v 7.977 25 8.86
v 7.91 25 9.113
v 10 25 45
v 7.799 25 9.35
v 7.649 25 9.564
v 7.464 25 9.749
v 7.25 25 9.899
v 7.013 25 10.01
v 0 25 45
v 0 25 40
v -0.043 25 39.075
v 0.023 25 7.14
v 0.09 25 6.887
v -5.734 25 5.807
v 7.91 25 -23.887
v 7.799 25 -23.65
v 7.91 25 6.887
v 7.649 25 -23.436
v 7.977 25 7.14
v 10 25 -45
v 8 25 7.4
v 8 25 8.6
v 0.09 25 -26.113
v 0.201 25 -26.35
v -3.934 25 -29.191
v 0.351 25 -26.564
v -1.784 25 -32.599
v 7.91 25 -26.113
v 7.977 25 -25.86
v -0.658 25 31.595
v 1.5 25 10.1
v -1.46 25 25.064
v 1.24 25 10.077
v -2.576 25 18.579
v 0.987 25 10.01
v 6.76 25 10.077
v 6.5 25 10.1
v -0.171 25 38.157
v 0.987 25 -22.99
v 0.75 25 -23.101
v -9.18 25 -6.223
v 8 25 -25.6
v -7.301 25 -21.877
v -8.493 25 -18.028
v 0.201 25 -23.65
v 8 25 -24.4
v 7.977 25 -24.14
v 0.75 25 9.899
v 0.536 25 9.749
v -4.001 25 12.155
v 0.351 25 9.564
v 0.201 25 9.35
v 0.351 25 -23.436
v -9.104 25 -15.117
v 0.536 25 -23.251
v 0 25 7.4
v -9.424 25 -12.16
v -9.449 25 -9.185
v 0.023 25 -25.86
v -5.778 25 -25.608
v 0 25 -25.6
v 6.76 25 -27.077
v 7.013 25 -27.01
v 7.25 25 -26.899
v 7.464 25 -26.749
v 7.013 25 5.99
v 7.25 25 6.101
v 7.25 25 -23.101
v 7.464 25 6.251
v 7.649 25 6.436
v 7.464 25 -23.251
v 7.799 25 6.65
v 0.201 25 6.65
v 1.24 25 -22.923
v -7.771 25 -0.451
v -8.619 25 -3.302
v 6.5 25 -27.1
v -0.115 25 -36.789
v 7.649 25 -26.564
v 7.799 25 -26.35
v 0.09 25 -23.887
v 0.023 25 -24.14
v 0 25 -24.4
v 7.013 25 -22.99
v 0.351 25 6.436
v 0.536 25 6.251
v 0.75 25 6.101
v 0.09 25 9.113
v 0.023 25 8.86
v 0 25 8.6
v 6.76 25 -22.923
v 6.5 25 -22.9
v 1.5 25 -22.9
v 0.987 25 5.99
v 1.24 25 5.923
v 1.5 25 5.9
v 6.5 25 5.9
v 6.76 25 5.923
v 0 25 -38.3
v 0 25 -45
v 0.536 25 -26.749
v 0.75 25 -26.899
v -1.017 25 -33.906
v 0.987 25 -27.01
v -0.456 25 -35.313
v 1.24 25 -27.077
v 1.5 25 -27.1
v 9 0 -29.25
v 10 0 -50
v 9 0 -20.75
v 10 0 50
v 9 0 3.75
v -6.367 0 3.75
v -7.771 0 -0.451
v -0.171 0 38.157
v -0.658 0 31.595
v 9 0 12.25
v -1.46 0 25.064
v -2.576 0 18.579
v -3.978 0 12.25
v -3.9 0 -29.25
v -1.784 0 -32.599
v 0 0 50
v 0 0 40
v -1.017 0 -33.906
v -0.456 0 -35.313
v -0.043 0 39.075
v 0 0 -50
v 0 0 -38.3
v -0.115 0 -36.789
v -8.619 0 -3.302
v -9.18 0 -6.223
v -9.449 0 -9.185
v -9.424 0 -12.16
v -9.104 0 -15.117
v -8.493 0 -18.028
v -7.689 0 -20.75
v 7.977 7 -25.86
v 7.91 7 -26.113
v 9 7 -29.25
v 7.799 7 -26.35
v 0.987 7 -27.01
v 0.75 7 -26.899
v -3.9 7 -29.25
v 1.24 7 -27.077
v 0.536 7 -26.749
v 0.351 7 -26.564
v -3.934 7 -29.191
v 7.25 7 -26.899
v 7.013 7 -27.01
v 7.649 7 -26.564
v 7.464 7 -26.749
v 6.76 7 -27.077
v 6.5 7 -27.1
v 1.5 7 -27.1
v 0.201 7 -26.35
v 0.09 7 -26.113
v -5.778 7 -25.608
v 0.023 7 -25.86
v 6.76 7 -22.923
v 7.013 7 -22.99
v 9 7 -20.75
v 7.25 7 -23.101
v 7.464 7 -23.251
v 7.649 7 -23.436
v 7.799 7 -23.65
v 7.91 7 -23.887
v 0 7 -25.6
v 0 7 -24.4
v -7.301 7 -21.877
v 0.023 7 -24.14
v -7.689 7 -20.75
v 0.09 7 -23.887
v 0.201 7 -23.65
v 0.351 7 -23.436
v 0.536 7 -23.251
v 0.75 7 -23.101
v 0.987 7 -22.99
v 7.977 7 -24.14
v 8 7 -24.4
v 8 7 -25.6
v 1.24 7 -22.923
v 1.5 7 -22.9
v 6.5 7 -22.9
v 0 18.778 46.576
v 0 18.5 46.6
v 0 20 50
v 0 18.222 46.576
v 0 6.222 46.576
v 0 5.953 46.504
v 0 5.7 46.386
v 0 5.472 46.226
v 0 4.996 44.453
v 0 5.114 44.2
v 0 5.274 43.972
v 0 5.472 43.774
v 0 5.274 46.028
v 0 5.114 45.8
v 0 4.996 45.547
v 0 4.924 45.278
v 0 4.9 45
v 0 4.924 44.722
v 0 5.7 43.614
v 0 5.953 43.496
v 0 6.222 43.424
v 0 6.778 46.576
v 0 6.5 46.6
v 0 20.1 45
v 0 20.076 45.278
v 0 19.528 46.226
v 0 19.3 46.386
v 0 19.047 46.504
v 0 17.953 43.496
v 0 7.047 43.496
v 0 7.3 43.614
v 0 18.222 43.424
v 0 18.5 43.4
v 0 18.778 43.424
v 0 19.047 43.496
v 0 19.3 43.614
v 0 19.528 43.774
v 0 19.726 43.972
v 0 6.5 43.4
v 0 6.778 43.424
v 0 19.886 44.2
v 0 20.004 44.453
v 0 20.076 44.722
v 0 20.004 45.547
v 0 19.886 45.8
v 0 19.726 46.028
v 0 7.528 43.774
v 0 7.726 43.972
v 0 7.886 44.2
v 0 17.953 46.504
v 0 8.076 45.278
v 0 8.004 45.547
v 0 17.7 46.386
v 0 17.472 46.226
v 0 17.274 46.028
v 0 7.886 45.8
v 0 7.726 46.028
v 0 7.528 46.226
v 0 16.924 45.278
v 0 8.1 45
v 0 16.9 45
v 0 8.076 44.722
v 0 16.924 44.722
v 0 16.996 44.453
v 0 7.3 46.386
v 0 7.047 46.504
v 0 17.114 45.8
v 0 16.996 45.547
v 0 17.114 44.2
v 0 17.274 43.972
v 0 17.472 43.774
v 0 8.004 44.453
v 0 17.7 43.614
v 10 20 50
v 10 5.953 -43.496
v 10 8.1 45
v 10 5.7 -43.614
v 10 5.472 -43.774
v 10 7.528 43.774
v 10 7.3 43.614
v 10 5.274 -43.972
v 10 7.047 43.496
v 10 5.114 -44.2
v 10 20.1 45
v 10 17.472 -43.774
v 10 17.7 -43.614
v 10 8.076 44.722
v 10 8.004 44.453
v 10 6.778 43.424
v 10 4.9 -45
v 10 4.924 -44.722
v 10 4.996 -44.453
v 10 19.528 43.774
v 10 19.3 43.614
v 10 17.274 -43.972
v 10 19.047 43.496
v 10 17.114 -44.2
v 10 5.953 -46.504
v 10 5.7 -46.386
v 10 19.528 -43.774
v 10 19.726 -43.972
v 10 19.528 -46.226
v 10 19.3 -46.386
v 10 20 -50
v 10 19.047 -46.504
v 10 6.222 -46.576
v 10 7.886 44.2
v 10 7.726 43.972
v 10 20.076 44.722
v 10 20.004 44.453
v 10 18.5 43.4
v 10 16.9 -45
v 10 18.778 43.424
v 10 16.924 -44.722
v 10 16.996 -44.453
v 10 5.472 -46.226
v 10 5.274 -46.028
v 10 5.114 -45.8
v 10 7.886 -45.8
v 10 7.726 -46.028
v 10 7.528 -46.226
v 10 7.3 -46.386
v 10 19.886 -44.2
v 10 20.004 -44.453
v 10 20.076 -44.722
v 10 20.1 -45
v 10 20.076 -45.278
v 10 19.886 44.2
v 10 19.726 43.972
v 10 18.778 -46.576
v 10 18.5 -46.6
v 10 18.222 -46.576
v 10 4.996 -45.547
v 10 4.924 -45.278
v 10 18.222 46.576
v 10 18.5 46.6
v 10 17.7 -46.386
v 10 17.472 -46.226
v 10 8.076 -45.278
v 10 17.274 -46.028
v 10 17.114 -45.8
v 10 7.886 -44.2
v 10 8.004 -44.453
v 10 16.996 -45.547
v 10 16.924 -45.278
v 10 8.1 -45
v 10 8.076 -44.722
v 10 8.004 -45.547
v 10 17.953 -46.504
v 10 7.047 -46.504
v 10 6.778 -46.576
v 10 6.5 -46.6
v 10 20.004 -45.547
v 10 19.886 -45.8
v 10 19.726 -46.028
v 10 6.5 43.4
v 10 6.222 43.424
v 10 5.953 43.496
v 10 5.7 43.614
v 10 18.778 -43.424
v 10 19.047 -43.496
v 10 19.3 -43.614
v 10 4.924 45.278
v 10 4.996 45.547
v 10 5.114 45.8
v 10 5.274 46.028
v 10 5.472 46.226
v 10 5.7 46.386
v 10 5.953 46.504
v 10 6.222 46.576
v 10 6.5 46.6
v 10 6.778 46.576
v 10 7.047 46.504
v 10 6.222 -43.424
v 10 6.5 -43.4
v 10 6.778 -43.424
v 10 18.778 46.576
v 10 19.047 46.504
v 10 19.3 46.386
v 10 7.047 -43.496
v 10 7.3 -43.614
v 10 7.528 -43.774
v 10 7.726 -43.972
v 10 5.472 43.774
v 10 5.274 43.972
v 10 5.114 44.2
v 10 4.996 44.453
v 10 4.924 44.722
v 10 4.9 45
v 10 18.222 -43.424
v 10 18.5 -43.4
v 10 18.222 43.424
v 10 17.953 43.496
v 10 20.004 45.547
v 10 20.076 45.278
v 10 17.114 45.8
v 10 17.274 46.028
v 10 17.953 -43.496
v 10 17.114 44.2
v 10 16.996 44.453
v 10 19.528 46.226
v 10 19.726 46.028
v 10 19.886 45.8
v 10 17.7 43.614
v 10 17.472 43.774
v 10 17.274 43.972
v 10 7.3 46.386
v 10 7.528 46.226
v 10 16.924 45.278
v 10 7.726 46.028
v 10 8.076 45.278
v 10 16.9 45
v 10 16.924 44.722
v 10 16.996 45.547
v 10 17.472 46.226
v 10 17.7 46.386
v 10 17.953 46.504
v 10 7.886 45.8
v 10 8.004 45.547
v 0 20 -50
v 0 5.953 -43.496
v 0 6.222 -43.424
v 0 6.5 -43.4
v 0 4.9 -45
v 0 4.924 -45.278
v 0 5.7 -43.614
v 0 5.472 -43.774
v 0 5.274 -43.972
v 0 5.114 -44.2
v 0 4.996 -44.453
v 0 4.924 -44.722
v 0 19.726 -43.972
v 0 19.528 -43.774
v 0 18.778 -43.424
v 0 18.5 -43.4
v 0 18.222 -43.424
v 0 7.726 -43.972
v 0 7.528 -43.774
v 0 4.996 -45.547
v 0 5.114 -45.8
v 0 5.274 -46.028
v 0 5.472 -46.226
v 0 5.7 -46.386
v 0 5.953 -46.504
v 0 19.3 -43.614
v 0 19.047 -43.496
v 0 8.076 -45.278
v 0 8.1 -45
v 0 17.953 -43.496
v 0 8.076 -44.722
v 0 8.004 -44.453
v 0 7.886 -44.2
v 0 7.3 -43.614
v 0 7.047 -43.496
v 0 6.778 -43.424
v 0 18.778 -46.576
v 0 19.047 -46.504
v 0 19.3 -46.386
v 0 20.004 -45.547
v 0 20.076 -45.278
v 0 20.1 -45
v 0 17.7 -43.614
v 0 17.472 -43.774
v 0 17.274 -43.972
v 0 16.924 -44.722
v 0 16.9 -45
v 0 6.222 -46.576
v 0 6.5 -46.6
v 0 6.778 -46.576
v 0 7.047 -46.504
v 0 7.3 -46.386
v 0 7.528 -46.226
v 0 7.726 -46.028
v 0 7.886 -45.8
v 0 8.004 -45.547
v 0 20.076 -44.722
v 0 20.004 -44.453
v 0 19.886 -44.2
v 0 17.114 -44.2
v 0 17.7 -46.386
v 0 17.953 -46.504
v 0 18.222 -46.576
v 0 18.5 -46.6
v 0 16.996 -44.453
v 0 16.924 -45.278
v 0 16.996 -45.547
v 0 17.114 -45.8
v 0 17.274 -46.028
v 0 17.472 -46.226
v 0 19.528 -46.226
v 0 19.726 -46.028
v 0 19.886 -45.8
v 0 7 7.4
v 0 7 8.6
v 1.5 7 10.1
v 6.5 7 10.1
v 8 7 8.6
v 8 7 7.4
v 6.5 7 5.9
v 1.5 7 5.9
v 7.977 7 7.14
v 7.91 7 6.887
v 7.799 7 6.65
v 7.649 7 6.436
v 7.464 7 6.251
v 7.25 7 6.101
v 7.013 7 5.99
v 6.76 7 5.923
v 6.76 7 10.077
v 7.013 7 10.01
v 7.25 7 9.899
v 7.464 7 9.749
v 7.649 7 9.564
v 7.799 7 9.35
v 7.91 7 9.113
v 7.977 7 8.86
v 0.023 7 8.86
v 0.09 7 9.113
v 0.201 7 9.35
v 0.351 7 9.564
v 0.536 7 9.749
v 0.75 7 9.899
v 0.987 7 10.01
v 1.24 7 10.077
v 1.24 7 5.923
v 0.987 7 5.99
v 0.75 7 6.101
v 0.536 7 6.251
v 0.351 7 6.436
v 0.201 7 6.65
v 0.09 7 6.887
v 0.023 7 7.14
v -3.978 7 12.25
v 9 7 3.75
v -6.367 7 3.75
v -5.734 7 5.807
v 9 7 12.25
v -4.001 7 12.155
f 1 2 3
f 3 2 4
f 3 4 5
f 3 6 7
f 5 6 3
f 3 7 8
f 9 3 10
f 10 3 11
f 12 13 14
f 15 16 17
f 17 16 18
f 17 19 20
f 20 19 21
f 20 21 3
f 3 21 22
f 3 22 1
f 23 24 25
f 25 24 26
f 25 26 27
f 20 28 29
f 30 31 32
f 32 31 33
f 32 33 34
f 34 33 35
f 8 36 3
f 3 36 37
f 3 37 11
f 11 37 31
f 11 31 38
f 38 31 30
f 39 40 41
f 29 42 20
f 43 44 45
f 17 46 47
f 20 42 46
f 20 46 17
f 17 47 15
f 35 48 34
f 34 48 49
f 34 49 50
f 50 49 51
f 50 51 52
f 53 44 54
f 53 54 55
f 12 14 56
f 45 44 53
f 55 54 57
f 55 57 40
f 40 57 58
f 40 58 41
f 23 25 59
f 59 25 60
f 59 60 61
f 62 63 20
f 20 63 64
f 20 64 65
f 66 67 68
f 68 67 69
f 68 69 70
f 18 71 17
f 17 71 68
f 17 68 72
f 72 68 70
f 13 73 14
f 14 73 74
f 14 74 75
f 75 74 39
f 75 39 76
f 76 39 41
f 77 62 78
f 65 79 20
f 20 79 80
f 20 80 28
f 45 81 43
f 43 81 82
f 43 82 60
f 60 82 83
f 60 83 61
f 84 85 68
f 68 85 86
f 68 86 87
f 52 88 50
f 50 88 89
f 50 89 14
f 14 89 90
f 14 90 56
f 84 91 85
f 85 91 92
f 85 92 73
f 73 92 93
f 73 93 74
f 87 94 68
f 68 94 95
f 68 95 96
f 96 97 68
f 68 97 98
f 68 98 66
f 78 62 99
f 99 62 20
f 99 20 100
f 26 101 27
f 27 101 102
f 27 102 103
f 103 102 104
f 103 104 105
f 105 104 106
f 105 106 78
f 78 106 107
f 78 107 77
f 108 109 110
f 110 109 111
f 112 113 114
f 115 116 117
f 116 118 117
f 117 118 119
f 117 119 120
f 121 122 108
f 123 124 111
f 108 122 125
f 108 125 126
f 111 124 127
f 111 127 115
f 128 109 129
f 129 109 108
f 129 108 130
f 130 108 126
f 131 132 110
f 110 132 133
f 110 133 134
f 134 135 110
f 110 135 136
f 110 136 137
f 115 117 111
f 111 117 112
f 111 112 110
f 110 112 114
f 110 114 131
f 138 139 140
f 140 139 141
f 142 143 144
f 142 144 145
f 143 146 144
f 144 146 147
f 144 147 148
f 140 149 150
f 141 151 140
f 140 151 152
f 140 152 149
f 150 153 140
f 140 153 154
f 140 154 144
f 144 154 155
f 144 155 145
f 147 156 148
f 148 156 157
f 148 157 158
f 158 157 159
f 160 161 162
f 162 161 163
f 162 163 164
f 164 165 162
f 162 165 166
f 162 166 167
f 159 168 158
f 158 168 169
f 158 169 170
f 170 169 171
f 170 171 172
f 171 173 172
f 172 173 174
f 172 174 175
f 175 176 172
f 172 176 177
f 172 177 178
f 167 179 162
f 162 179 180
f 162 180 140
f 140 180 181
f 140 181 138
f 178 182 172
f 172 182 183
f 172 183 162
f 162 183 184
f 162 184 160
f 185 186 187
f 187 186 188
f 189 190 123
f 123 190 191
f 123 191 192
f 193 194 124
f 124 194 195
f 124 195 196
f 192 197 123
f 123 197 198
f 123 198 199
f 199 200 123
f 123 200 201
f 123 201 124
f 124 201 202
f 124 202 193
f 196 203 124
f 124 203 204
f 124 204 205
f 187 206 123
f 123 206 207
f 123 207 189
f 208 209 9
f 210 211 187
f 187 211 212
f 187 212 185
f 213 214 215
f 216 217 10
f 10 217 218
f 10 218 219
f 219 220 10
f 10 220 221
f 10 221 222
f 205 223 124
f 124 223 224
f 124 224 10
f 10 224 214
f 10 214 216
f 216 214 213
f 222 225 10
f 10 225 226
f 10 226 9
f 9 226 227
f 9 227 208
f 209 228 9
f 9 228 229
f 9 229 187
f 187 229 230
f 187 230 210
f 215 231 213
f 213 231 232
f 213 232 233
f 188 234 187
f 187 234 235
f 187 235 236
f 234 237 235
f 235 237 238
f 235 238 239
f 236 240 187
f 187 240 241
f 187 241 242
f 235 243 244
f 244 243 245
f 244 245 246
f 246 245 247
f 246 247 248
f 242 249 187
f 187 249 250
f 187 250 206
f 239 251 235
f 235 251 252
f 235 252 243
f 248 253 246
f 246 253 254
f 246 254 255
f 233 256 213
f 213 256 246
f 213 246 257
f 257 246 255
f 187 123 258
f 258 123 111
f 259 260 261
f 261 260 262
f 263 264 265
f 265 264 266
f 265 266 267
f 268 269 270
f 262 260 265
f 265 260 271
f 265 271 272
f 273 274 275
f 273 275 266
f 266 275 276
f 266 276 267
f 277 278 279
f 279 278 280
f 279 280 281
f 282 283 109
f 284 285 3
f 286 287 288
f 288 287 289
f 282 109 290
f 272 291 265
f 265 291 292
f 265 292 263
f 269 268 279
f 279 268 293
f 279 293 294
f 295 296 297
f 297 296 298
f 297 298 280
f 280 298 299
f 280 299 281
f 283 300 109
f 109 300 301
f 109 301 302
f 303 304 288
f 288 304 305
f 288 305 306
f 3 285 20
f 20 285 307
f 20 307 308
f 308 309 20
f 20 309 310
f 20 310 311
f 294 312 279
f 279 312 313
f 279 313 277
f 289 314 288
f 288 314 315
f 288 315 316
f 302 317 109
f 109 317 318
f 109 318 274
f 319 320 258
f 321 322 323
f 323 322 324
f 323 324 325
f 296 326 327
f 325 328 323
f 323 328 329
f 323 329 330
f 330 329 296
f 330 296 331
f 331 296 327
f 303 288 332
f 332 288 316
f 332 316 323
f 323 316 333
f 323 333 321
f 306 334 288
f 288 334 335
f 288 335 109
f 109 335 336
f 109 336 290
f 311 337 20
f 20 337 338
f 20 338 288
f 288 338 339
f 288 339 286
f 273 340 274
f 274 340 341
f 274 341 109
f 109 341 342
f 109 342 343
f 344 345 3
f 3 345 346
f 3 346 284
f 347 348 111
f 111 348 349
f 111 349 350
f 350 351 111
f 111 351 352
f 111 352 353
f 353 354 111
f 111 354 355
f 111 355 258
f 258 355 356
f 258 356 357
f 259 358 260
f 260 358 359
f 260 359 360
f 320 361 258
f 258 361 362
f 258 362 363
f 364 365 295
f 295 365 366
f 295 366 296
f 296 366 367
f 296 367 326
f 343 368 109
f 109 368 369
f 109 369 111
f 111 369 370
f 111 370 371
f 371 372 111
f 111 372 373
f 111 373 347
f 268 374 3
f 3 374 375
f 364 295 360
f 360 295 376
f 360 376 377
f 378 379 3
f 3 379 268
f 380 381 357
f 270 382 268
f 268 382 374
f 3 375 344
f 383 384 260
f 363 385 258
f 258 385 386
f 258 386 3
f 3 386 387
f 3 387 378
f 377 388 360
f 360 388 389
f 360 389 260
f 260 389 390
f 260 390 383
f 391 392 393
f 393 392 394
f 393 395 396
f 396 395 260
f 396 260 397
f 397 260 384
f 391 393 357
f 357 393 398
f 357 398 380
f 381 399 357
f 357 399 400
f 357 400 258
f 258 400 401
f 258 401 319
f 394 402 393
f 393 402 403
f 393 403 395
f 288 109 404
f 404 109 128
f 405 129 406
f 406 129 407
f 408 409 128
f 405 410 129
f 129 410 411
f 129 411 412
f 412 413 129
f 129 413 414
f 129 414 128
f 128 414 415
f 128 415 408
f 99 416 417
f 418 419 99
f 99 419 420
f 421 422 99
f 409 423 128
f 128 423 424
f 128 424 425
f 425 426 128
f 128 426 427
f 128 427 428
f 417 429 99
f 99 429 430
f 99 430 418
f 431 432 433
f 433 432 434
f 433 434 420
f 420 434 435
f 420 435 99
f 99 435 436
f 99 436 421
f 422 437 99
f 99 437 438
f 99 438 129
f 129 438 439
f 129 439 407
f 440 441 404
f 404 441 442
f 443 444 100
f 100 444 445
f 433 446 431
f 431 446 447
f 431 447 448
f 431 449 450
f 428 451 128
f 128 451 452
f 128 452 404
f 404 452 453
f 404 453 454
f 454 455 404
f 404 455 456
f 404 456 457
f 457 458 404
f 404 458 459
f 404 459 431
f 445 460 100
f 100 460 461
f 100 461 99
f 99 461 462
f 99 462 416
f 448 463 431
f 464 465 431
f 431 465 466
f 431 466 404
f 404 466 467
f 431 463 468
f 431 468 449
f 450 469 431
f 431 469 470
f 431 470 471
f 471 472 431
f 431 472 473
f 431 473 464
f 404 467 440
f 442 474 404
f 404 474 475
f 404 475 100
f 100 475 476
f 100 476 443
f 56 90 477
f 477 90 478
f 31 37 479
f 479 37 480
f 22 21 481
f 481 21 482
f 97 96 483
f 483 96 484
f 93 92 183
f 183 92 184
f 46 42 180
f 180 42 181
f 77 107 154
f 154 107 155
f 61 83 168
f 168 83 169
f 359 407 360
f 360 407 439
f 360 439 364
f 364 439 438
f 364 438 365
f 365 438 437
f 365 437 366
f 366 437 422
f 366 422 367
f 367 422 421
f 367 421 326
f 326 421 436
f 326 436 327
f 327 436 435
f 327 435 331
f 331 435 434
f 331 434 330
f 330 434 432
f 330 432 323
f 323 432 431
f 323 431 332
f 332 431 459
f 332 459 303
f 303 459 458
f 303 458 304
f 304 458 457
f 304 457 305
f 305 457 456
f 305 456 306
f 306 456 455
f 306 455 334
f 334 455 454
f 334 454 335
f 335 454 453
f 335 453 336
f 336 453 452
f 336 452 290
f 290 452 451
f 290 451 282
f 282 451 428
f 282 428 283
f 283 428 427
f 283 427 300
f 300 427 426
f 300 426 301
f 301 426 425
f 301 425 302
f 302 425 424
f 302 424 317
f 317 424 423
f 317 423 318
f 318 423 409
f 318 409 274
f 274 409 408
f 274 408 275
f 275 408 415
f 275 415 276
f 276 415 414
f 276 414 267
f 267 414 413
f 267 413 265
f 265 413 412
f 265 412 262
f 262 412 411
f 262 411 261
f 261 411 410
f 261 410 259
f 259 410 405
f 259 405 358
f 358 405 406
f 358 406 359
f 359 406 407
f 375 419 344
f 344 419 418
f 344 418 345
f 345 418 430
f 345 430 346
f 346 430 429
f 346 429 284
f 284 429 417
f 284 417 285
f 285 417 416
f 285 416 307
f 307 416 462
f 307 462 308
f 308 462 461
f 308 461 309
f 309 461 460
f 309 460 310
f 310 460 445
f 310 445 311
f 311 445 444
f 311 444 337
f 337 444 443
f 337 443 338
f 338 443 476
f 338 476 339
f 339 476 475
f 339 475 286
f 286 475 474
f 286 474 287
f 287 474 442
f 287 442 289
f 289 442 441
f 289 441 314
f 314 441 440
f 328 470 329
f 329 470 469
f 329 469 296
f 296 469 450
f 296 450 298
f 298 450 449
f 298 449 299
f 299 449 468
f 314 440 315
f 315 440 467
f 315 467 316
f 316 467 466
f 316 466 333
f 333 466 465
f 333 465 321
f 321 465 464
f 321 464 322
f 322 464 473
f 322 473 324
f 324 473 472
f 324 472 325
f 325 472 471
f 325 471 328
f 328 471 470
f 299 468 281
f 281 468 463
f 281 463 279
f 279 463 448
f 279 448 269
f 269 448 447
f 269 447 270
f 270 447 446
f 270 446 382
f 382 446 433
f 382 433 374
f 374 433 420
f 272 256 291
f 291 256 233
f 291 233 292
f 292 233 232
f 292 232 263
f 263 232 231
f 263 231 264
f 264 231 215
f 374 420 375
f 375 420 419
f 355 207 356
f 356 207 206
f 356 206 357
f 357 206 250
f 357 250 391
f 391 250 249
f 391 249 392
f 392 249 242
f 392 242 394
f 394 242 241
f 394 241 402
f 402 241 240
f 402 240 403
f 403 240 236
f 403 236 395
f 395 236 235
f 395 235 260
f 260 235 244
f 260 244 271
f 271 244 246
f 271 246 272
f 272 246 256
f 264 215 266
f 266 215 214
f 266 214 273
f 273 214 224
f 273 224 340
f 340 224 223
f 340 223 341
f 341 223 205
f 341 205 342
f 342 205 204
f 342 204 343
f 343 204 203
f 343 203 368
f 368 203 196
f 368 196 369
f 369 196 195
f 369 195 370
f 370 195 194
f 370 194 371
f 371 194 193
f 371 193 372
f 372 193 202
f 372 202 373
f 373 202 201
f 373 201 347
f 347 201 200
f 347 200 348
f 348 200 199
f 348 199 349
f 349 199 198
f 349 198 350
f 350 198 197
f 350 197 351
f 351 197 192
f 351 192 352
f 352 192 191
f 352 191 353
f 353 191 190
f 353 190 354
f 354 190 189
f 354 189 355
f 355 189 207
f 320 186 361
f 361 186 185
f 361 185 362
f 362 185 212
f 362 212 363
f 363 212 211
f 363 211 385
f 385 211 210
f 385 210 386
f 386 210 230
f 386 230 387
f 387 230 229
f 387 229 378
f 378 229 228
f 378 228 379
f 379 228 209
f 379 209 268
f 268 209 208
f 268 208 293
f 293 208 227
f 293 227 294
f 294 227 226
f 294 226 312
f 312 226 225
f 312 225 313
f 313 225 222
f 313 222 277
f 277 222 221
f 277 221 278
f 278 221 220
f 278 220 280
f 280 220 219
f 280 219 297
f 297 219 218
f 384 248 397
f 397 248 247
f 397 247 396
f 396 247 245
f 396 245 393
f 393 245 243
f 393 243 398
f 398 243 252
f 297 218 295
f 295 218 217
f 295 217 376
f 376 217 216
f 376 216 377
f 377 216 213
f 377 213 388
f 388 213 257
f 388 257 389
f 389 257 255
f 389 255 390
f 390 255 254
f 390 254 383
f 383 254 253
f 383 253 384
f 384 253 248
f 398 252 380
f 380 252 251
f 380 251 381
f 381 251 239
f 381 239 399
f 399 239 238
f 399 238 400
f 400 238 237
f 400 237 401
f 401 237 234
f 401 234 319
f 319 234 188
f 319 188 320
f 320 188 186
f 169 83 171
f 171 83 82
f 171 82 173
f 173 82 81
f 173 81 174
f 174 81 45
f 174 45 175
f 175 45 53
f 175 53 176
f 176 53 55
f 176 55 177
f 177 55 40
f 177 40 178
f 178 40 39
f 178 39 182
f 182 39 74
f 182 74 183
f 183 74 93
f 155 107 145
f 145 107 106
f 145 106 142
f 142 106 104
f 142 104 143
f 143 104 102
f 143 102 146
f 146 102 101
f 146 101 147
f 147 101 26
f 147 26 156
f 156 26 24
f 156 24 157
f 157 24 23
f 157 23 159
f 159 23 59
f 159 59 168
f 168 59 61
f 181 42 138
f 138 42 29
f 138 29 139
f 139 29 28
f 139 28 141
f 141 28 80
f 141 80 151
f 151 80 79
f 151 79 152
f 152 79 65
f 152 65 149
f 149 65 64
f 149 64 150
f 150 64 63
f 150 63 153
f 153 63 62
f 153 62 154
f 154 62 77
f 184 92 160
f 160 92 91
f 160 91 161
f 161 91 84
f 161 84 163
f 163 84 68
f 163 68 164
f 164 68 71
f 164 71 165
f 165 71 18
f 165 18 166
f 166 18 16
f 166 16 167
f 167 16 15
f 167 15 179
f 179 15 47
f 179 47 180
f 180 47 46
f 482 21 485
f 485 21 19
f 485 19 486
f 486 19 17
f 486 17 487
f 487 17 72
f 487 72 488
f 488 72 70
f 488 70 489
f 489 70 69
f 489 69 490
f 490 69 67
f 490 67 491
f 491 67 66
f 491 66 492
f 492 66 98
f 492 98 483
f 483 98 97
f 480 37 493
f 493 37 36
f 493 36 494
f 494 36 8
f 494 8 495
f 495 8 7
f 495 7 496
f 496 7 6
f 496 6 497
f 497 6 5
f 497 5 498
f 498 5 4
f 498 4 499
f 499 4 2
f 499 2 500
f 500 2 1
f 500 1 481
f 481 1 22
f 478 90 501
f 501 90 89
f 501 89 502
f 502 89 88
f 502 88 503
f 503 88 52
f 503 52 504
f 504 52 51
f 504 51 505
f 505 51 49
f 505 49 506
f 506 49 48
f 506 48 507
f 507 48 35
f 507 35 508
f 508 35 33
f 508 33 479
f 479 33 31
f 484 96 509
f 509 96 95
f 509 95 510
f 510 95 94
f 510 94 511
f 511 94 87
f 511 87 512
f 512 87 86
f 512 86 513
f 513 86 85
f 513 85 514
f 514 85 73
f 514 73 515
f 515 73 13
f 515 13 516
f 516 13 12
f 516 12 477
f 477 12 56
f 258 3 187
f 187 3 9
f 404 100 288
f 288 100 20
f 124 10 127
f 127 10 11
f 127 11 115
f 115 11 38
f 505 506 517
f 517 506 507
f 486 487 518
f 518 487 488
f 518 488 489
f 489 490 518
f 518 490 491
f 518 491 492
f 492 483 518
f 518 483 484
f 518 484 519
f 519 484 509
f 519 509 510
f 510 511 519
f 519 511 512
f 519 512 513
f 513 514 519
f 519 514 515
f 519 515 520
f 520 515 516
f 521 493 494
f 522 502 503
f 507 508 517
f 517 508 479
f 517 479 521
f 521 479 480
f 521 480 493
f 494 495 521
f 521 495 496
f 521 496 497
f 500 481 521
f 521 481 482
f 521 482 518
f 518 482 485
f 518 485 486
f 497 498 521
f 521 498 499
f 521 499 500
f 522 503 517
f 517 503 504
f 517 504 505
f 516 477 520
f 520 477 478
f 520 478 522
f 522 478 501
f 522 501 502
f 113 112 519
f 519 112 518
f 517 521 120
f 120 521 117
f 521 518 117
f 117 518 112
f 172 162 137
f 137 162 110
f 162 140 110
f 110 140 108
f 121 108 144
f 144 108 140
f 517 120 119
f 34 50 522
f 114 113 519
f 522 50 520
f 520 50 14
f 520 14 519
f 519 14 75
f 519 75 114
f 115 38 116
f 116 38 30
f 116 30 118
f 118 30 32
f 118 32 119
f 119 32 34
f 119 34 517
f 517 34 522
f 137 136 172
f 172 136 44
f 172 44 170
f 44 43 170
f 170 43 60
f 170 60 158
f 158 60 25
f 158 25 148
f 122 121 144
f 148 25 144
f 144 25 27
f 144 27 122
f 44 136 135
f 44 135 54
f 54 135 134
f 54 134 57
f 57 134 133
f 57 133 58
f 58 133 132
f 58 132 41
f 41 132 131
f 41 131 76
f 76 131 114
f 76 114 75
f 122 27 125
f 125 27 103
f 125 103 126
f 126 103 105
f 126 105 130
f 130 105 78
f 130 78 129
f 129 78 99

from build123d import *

# Parameters (mm, degrees)
SKETCH_1_W          = 8
SKETCH_1_H          = 4.2
EXTRUDE_1_DEPTH     = 25
SKETCH_2_R          = 1.6
CUT_EXTRUDE_1_DEPTH = 57.789083458
SKETCH_3_R          = 1.6
CUT_EXTRUDE_2_DEPTH = 57.789083458
FILLET_7_R          = 1.5
CHAMFER_1_SIZE      = 5
FILLET_8_R          = 10
SKETCH1_W           = 19
SKETCH1_H           = 8.5
CUT_EXTRUDE1_DEPTH  = 7
CHAMFER1_START      = -19
CHAMFER1_OUTLINE_W  = 27
CHAMFER1_OUTLINE_H  = 17
CHAMFER1_DEPTH      = 4.338795771
CUT_EXTRUDE3_DEPTH  = 57.789083458
FILLET7_R           = 30
FILLET8_R           = 10


with BuildPart() as part:
    # Эскиз1 → Бобышка-Вытянуть1 (new body)
    with BuildSketch(Plane(origin=(0, 0, 0), x_dir=(1, 0, 0), z_dir=(0, 1, 0))):
        Polygon((-10, -30), (0, -30), (0, -50), (10, -50), (10, 50), (0, 50), (0, 30), (-10, 30), align=None)
        with Locations((4, 25)):
            Rectangle(SKETCH_1_W, SKETCH_1_H, mode=Mode.SUBTRACT)
        with Locations((4, -8)):
            Rectangle(SKETCH_1_W, SKETCH_1_H, mode=Mode.SUBTRACT)
    extrude(amount=EXTRUDE_1_DEPTH)

    # Эскиз2 → Вырез-Вытянуть1 (cut, through all)
    with BuildSketch(Plane.ZY):
        with Locations((-45, 6.5)):
            Circle(SKETCH_2_R)
        with Locations((-45, 18.5)):
            Circle(SKETCH_2_R)
    extrude(amount=-CUT_EXTRUDE_1_DEPTH, mode=Mode.SUBTRACT)

    # Эскиз3 → Вырез-Вытянуть2 (cut, through all)
    with BuildSketch(Plane.ZY):
        with Locations((45, 6.5)):
            Circle(SKETCH_3_R)
        with Locations((45, 18.5)):
            Circle(SKETCH_3_R)
    extrude(amount=-CUT_EXTRUDE_2_DEPTH, mode=Mode.SUBTRACT)

    # Скругление7
    fillet_7_edges = [part.edges().sort_by_distance(p)[0] for p in [
        (0, 12.5, 5.9),
        (0, 12.5, 10.1),
        (8, 12.5, 10.1),
        (8, 12.5, 5.9),
        (0, 12.5, -22.9),
        (8, 12.5, -22.9),
        (8, 12.5, -27.1),
        (0, 12.5, -27.1),
    ]]
    fillet(fillet_7_edges, radius=FILLET_7_R)

    # Фаска1
    chamfer_1_edges = [part.edges().sort_by_distance(p)[0] for p in [
        (5, 25, 50),
        (5, 25, -50),
    ]]
    chamfer(chamfer_1_edges, length=CHAMFER_1_SIZE)

    # Скругление8
    fillet_8_edges = [part.edges().sort_by_distance(p)[0] for p in [
        (0, 12.5, 30),
        (0, 12.5, -30),
    ]]
    fillet(fillet_8_edges, radius=FILLET_8_R - 0.0001)  # a hair under: the kernel refuses the full size

    # Sketch1 → Cut-Extrude1 (cut)
    with BuildSketch(Plane.XZ):
        with Locations((-0.5, 8)):
            Rectangle(SKETCH1_W, SKETCH1_H)
        with Locations((-0.5, -25)):
            Rectangle(SKETCH1_W, SKETCH1_H)
    extrude(amount=-CUT_EXTRUDE1_DEPTH, mode=Mode.SUBTRACT)

    # Chamfer1: read off the stored shape, not the designer's step
    # Chamfer1 outline → Chamfer1 (cut)
    with BuildSketch(Plane(origin=(0, 0, 0), x_dir=(0, 1, 0), z_dir=(0.9555233585367056, 0, -0.29491543074368715)).offset(CHAMFER1_START)):
        with Locations((12.5, 20.5)):
            Rectangle(CHAMFER1_OUTLINE_W, CHAMFER1_OUTLINE_H)
    extrude(amount=CHAMFER1_DEPTH, mode=Mode.SUBTRACT)

    # Sketch3 → Cut-Extrude3 (cut, through all)
    with BuildSketch(Plane(origin=(0, 25, 0), x_dir=(1, 0, 0), z_dir=(0, 1, 0))):
        with BuildLine():
            Line((0, 35), (0, 45))
            Line((0, 45), (-16.541380551, 45))
            Line((-16.541380551, 45), (-16.541380551, -45))
            Line((-16.541380551, -45), (0, -45))
            ThreePointArc((0, -45), (-2.523269625, -18.845948598), (-10, 6.343330813))
            ThreePointArc((-10, 6.343330813), (-7.428201086, 21.519007807), (0, 35))
        make_face()
    extrude(amount=-CUT_EXTRUDE3_DEPTH, mode=Mode.SUBTRACT)

    # Fillet7
    fillet7_edges = [part.edges().sort_by_distance(p)[0] for p in [
        (-10, 12.5, -6.343330813),
    ]]
    fillet(fillet7_edges, radius=FILLET7_R)

    # Fillet8
    fillet8_edges = [part.edges().sort_by_distance(p)[0] for p in [
        (0, 12.5, -35),
    ]]
    fillet(fillet8_edges, radius=FILLET8_R)


solid = part.part
